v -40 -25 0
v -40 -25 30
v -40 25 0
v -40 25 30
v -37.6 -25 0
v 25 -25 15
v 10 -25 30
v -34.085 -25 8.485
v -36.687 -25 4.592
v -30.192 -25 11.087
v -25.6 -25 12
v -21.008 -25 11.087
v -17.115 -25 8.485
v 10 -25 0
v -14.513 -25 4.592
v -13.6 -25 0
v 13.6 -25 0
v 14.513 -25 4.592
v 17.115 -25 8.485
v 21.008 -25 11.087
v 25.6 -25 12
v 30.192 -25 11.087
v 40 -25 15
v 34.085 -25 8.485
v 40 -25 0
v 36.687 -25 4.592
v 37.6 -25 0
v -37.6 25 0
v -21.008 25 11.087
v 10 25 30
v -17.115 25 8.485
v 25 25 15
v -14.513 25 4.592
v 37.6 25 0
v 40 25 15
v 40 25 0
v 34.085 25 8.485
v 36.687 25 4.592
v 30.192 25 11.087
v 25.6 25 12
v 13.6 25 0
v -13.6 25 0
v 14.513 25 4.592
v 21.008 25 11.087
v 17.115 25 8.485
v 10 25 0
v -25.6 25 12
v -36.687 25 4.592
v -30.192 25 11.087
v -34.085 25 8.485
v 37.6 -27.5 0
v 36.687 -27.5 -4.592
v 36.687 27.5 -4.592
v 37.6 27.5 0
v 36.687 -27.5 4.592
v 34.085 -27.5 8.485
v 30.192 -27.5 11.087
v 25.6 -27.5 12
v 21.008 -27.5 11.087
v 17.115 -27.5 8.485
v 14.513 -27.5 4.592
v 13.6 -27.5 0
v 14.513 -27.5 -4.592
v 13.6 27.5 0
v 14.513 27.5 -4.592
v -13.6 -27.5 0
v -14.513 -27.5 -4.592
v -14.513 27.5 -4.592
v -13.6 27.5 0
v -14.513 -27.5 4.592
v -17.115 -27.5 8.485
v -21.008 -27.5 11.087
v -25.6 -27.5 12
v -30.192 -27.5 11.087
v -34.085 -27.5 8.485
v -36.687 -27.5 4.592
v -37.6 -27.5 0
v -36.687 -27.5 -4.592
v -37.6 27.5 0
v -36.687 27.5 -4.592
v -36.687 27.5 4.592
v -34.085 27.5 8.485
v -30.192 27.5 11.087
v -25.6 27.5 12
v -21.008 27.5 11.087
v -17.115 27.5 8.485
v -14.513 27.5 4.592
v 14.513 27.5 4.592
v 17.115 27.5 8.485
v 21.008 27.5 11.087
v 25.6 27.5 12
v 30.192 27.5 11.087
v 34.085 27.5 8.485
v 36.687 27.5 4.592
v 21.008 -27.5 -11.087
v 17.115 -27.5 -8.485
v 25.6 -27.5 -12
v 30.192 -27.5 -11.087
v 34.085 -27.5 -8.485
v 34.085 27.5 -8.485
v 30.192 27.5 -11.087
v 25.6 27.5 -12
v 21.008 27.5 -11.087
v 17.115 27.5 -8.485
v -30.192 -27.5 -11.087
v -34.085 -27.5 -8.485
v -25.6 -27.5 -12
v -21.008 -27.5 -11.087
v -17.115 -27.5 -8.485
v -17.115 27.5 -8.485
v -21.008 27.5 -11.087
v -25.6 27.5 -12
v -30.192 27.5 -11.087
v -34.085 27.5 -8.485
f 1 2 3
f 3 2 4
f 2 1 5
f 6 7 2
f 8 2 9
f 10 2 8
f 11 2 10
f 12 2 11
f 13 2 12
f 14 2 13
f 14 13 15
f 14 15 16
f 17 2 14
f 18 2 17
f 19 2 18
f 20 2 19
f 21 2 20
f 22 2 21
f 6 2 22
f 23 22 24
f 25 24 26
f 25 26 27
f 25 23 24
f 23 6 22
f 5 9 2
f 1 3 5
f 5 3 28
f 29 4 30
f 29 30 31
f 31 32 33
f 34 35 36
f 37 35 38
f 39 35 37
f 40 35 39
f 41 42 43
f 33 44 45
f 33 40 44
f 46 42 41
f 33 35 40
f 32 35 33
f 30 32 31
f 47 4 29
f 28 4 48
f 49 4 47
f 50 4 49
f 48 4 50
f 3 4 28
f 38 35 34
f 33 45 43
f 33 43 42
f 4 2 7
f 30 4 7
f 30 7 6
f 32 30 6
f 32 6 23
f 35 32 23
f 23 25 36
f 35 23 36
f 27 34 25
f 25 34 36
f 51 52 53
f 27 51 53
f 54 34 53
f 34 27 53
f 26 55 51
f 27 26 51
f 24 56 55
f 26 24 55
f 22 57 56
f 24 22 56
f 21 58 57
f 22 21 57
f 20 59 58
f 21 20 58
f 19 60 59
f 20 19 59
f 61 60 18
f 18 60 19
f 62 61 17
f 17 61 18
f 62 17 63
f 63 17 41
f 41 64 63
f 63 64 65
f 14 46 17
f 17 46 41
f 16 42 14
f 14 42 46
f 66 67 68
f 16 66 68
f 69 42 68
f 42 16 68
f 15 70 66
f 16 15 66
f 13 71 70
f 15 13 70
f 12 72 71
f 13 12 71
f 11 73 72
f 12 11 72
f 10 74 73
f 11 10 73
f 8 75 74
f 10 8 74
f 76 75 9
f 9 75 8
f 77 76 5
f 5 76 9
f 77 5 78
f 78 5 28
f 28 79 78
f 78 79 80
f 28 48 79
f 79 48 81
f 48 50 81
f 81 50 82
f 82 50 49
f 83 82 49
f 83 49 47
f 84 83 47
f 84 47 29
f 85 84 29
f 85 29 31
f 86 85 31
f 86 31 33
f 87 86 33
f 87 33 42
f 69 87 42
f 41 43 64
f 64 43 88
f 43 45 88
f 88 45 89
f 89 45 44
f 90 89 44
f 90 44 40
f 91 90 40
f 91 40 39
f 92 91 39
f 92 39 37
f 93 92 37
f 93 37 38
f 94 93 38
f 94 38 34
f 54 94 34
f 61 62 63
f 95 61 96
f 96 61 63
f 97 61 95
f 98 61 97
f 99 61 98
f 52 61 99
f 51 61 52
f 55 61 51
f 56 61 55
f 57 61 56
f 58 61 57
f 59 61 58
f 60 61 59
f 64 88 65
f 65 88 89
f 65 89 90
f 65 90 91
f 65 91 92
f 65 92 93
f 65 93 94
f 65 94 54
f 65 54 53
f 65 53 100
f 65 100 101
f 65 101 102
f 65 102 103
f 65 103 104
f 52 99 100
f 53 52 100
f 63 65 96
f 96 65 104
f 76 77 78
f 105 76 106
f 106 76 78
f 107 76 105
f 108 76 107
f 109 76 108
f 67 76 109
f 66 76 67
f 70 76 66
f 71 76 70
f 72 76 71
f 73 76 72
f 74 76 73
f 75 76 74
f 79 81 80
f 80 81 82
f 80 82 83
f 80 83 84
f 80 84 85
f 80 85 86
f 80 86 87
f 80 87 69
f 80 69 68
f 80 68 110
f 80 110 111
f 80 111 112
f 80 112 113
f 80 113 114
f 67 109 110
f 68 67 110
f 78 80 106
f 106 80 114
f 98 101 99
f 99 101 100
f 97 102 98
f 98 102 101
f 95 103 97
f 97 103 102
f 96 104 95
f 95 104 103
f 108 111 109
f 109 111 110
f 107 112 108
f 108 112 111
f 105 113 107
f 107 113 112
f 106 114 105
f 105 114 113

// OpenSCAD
$fn = 16;

translate(v = [-15.0000000000, 0, 0]) {
	union() {
		union() {
			union() {
				union() {
					translate(v = [0, 0, 15.0000000000]) {
						cube(center = true, size = [50.0000000000, 50.0000000000, 30.0000000000]);
					}
					translate(v = [40.0000000000, 0, 7.5000000000]) {
						cube(center = true, size = [30.0000000000, 50.0000000000, 15.0000000000]);
					}
				}
				translate(v = [25.0000000000, 0, 15.0000000000]) {
					rotate(a = [0, 45, 0]) {
						cube(center = true, size = [21.2132034356, 50.0000000000, 21.2132034356]);
					}
				}
			}
			translate(v = [-10.6000000000, 27.5000000000, 0]) {
				rotate(a = [90, 0, 0]) {
					cylinder(h = 55.0000000000, r = 12.0000000000);
				}
			}
		}
		translate(v = [40.6000000000, 27.5000000000, 0]) {
			rotate(a = [90, 0, 0]) {
				cylinder(h = 55.0000000000, r = 12.0000000000);
			}
		}
	}
}
